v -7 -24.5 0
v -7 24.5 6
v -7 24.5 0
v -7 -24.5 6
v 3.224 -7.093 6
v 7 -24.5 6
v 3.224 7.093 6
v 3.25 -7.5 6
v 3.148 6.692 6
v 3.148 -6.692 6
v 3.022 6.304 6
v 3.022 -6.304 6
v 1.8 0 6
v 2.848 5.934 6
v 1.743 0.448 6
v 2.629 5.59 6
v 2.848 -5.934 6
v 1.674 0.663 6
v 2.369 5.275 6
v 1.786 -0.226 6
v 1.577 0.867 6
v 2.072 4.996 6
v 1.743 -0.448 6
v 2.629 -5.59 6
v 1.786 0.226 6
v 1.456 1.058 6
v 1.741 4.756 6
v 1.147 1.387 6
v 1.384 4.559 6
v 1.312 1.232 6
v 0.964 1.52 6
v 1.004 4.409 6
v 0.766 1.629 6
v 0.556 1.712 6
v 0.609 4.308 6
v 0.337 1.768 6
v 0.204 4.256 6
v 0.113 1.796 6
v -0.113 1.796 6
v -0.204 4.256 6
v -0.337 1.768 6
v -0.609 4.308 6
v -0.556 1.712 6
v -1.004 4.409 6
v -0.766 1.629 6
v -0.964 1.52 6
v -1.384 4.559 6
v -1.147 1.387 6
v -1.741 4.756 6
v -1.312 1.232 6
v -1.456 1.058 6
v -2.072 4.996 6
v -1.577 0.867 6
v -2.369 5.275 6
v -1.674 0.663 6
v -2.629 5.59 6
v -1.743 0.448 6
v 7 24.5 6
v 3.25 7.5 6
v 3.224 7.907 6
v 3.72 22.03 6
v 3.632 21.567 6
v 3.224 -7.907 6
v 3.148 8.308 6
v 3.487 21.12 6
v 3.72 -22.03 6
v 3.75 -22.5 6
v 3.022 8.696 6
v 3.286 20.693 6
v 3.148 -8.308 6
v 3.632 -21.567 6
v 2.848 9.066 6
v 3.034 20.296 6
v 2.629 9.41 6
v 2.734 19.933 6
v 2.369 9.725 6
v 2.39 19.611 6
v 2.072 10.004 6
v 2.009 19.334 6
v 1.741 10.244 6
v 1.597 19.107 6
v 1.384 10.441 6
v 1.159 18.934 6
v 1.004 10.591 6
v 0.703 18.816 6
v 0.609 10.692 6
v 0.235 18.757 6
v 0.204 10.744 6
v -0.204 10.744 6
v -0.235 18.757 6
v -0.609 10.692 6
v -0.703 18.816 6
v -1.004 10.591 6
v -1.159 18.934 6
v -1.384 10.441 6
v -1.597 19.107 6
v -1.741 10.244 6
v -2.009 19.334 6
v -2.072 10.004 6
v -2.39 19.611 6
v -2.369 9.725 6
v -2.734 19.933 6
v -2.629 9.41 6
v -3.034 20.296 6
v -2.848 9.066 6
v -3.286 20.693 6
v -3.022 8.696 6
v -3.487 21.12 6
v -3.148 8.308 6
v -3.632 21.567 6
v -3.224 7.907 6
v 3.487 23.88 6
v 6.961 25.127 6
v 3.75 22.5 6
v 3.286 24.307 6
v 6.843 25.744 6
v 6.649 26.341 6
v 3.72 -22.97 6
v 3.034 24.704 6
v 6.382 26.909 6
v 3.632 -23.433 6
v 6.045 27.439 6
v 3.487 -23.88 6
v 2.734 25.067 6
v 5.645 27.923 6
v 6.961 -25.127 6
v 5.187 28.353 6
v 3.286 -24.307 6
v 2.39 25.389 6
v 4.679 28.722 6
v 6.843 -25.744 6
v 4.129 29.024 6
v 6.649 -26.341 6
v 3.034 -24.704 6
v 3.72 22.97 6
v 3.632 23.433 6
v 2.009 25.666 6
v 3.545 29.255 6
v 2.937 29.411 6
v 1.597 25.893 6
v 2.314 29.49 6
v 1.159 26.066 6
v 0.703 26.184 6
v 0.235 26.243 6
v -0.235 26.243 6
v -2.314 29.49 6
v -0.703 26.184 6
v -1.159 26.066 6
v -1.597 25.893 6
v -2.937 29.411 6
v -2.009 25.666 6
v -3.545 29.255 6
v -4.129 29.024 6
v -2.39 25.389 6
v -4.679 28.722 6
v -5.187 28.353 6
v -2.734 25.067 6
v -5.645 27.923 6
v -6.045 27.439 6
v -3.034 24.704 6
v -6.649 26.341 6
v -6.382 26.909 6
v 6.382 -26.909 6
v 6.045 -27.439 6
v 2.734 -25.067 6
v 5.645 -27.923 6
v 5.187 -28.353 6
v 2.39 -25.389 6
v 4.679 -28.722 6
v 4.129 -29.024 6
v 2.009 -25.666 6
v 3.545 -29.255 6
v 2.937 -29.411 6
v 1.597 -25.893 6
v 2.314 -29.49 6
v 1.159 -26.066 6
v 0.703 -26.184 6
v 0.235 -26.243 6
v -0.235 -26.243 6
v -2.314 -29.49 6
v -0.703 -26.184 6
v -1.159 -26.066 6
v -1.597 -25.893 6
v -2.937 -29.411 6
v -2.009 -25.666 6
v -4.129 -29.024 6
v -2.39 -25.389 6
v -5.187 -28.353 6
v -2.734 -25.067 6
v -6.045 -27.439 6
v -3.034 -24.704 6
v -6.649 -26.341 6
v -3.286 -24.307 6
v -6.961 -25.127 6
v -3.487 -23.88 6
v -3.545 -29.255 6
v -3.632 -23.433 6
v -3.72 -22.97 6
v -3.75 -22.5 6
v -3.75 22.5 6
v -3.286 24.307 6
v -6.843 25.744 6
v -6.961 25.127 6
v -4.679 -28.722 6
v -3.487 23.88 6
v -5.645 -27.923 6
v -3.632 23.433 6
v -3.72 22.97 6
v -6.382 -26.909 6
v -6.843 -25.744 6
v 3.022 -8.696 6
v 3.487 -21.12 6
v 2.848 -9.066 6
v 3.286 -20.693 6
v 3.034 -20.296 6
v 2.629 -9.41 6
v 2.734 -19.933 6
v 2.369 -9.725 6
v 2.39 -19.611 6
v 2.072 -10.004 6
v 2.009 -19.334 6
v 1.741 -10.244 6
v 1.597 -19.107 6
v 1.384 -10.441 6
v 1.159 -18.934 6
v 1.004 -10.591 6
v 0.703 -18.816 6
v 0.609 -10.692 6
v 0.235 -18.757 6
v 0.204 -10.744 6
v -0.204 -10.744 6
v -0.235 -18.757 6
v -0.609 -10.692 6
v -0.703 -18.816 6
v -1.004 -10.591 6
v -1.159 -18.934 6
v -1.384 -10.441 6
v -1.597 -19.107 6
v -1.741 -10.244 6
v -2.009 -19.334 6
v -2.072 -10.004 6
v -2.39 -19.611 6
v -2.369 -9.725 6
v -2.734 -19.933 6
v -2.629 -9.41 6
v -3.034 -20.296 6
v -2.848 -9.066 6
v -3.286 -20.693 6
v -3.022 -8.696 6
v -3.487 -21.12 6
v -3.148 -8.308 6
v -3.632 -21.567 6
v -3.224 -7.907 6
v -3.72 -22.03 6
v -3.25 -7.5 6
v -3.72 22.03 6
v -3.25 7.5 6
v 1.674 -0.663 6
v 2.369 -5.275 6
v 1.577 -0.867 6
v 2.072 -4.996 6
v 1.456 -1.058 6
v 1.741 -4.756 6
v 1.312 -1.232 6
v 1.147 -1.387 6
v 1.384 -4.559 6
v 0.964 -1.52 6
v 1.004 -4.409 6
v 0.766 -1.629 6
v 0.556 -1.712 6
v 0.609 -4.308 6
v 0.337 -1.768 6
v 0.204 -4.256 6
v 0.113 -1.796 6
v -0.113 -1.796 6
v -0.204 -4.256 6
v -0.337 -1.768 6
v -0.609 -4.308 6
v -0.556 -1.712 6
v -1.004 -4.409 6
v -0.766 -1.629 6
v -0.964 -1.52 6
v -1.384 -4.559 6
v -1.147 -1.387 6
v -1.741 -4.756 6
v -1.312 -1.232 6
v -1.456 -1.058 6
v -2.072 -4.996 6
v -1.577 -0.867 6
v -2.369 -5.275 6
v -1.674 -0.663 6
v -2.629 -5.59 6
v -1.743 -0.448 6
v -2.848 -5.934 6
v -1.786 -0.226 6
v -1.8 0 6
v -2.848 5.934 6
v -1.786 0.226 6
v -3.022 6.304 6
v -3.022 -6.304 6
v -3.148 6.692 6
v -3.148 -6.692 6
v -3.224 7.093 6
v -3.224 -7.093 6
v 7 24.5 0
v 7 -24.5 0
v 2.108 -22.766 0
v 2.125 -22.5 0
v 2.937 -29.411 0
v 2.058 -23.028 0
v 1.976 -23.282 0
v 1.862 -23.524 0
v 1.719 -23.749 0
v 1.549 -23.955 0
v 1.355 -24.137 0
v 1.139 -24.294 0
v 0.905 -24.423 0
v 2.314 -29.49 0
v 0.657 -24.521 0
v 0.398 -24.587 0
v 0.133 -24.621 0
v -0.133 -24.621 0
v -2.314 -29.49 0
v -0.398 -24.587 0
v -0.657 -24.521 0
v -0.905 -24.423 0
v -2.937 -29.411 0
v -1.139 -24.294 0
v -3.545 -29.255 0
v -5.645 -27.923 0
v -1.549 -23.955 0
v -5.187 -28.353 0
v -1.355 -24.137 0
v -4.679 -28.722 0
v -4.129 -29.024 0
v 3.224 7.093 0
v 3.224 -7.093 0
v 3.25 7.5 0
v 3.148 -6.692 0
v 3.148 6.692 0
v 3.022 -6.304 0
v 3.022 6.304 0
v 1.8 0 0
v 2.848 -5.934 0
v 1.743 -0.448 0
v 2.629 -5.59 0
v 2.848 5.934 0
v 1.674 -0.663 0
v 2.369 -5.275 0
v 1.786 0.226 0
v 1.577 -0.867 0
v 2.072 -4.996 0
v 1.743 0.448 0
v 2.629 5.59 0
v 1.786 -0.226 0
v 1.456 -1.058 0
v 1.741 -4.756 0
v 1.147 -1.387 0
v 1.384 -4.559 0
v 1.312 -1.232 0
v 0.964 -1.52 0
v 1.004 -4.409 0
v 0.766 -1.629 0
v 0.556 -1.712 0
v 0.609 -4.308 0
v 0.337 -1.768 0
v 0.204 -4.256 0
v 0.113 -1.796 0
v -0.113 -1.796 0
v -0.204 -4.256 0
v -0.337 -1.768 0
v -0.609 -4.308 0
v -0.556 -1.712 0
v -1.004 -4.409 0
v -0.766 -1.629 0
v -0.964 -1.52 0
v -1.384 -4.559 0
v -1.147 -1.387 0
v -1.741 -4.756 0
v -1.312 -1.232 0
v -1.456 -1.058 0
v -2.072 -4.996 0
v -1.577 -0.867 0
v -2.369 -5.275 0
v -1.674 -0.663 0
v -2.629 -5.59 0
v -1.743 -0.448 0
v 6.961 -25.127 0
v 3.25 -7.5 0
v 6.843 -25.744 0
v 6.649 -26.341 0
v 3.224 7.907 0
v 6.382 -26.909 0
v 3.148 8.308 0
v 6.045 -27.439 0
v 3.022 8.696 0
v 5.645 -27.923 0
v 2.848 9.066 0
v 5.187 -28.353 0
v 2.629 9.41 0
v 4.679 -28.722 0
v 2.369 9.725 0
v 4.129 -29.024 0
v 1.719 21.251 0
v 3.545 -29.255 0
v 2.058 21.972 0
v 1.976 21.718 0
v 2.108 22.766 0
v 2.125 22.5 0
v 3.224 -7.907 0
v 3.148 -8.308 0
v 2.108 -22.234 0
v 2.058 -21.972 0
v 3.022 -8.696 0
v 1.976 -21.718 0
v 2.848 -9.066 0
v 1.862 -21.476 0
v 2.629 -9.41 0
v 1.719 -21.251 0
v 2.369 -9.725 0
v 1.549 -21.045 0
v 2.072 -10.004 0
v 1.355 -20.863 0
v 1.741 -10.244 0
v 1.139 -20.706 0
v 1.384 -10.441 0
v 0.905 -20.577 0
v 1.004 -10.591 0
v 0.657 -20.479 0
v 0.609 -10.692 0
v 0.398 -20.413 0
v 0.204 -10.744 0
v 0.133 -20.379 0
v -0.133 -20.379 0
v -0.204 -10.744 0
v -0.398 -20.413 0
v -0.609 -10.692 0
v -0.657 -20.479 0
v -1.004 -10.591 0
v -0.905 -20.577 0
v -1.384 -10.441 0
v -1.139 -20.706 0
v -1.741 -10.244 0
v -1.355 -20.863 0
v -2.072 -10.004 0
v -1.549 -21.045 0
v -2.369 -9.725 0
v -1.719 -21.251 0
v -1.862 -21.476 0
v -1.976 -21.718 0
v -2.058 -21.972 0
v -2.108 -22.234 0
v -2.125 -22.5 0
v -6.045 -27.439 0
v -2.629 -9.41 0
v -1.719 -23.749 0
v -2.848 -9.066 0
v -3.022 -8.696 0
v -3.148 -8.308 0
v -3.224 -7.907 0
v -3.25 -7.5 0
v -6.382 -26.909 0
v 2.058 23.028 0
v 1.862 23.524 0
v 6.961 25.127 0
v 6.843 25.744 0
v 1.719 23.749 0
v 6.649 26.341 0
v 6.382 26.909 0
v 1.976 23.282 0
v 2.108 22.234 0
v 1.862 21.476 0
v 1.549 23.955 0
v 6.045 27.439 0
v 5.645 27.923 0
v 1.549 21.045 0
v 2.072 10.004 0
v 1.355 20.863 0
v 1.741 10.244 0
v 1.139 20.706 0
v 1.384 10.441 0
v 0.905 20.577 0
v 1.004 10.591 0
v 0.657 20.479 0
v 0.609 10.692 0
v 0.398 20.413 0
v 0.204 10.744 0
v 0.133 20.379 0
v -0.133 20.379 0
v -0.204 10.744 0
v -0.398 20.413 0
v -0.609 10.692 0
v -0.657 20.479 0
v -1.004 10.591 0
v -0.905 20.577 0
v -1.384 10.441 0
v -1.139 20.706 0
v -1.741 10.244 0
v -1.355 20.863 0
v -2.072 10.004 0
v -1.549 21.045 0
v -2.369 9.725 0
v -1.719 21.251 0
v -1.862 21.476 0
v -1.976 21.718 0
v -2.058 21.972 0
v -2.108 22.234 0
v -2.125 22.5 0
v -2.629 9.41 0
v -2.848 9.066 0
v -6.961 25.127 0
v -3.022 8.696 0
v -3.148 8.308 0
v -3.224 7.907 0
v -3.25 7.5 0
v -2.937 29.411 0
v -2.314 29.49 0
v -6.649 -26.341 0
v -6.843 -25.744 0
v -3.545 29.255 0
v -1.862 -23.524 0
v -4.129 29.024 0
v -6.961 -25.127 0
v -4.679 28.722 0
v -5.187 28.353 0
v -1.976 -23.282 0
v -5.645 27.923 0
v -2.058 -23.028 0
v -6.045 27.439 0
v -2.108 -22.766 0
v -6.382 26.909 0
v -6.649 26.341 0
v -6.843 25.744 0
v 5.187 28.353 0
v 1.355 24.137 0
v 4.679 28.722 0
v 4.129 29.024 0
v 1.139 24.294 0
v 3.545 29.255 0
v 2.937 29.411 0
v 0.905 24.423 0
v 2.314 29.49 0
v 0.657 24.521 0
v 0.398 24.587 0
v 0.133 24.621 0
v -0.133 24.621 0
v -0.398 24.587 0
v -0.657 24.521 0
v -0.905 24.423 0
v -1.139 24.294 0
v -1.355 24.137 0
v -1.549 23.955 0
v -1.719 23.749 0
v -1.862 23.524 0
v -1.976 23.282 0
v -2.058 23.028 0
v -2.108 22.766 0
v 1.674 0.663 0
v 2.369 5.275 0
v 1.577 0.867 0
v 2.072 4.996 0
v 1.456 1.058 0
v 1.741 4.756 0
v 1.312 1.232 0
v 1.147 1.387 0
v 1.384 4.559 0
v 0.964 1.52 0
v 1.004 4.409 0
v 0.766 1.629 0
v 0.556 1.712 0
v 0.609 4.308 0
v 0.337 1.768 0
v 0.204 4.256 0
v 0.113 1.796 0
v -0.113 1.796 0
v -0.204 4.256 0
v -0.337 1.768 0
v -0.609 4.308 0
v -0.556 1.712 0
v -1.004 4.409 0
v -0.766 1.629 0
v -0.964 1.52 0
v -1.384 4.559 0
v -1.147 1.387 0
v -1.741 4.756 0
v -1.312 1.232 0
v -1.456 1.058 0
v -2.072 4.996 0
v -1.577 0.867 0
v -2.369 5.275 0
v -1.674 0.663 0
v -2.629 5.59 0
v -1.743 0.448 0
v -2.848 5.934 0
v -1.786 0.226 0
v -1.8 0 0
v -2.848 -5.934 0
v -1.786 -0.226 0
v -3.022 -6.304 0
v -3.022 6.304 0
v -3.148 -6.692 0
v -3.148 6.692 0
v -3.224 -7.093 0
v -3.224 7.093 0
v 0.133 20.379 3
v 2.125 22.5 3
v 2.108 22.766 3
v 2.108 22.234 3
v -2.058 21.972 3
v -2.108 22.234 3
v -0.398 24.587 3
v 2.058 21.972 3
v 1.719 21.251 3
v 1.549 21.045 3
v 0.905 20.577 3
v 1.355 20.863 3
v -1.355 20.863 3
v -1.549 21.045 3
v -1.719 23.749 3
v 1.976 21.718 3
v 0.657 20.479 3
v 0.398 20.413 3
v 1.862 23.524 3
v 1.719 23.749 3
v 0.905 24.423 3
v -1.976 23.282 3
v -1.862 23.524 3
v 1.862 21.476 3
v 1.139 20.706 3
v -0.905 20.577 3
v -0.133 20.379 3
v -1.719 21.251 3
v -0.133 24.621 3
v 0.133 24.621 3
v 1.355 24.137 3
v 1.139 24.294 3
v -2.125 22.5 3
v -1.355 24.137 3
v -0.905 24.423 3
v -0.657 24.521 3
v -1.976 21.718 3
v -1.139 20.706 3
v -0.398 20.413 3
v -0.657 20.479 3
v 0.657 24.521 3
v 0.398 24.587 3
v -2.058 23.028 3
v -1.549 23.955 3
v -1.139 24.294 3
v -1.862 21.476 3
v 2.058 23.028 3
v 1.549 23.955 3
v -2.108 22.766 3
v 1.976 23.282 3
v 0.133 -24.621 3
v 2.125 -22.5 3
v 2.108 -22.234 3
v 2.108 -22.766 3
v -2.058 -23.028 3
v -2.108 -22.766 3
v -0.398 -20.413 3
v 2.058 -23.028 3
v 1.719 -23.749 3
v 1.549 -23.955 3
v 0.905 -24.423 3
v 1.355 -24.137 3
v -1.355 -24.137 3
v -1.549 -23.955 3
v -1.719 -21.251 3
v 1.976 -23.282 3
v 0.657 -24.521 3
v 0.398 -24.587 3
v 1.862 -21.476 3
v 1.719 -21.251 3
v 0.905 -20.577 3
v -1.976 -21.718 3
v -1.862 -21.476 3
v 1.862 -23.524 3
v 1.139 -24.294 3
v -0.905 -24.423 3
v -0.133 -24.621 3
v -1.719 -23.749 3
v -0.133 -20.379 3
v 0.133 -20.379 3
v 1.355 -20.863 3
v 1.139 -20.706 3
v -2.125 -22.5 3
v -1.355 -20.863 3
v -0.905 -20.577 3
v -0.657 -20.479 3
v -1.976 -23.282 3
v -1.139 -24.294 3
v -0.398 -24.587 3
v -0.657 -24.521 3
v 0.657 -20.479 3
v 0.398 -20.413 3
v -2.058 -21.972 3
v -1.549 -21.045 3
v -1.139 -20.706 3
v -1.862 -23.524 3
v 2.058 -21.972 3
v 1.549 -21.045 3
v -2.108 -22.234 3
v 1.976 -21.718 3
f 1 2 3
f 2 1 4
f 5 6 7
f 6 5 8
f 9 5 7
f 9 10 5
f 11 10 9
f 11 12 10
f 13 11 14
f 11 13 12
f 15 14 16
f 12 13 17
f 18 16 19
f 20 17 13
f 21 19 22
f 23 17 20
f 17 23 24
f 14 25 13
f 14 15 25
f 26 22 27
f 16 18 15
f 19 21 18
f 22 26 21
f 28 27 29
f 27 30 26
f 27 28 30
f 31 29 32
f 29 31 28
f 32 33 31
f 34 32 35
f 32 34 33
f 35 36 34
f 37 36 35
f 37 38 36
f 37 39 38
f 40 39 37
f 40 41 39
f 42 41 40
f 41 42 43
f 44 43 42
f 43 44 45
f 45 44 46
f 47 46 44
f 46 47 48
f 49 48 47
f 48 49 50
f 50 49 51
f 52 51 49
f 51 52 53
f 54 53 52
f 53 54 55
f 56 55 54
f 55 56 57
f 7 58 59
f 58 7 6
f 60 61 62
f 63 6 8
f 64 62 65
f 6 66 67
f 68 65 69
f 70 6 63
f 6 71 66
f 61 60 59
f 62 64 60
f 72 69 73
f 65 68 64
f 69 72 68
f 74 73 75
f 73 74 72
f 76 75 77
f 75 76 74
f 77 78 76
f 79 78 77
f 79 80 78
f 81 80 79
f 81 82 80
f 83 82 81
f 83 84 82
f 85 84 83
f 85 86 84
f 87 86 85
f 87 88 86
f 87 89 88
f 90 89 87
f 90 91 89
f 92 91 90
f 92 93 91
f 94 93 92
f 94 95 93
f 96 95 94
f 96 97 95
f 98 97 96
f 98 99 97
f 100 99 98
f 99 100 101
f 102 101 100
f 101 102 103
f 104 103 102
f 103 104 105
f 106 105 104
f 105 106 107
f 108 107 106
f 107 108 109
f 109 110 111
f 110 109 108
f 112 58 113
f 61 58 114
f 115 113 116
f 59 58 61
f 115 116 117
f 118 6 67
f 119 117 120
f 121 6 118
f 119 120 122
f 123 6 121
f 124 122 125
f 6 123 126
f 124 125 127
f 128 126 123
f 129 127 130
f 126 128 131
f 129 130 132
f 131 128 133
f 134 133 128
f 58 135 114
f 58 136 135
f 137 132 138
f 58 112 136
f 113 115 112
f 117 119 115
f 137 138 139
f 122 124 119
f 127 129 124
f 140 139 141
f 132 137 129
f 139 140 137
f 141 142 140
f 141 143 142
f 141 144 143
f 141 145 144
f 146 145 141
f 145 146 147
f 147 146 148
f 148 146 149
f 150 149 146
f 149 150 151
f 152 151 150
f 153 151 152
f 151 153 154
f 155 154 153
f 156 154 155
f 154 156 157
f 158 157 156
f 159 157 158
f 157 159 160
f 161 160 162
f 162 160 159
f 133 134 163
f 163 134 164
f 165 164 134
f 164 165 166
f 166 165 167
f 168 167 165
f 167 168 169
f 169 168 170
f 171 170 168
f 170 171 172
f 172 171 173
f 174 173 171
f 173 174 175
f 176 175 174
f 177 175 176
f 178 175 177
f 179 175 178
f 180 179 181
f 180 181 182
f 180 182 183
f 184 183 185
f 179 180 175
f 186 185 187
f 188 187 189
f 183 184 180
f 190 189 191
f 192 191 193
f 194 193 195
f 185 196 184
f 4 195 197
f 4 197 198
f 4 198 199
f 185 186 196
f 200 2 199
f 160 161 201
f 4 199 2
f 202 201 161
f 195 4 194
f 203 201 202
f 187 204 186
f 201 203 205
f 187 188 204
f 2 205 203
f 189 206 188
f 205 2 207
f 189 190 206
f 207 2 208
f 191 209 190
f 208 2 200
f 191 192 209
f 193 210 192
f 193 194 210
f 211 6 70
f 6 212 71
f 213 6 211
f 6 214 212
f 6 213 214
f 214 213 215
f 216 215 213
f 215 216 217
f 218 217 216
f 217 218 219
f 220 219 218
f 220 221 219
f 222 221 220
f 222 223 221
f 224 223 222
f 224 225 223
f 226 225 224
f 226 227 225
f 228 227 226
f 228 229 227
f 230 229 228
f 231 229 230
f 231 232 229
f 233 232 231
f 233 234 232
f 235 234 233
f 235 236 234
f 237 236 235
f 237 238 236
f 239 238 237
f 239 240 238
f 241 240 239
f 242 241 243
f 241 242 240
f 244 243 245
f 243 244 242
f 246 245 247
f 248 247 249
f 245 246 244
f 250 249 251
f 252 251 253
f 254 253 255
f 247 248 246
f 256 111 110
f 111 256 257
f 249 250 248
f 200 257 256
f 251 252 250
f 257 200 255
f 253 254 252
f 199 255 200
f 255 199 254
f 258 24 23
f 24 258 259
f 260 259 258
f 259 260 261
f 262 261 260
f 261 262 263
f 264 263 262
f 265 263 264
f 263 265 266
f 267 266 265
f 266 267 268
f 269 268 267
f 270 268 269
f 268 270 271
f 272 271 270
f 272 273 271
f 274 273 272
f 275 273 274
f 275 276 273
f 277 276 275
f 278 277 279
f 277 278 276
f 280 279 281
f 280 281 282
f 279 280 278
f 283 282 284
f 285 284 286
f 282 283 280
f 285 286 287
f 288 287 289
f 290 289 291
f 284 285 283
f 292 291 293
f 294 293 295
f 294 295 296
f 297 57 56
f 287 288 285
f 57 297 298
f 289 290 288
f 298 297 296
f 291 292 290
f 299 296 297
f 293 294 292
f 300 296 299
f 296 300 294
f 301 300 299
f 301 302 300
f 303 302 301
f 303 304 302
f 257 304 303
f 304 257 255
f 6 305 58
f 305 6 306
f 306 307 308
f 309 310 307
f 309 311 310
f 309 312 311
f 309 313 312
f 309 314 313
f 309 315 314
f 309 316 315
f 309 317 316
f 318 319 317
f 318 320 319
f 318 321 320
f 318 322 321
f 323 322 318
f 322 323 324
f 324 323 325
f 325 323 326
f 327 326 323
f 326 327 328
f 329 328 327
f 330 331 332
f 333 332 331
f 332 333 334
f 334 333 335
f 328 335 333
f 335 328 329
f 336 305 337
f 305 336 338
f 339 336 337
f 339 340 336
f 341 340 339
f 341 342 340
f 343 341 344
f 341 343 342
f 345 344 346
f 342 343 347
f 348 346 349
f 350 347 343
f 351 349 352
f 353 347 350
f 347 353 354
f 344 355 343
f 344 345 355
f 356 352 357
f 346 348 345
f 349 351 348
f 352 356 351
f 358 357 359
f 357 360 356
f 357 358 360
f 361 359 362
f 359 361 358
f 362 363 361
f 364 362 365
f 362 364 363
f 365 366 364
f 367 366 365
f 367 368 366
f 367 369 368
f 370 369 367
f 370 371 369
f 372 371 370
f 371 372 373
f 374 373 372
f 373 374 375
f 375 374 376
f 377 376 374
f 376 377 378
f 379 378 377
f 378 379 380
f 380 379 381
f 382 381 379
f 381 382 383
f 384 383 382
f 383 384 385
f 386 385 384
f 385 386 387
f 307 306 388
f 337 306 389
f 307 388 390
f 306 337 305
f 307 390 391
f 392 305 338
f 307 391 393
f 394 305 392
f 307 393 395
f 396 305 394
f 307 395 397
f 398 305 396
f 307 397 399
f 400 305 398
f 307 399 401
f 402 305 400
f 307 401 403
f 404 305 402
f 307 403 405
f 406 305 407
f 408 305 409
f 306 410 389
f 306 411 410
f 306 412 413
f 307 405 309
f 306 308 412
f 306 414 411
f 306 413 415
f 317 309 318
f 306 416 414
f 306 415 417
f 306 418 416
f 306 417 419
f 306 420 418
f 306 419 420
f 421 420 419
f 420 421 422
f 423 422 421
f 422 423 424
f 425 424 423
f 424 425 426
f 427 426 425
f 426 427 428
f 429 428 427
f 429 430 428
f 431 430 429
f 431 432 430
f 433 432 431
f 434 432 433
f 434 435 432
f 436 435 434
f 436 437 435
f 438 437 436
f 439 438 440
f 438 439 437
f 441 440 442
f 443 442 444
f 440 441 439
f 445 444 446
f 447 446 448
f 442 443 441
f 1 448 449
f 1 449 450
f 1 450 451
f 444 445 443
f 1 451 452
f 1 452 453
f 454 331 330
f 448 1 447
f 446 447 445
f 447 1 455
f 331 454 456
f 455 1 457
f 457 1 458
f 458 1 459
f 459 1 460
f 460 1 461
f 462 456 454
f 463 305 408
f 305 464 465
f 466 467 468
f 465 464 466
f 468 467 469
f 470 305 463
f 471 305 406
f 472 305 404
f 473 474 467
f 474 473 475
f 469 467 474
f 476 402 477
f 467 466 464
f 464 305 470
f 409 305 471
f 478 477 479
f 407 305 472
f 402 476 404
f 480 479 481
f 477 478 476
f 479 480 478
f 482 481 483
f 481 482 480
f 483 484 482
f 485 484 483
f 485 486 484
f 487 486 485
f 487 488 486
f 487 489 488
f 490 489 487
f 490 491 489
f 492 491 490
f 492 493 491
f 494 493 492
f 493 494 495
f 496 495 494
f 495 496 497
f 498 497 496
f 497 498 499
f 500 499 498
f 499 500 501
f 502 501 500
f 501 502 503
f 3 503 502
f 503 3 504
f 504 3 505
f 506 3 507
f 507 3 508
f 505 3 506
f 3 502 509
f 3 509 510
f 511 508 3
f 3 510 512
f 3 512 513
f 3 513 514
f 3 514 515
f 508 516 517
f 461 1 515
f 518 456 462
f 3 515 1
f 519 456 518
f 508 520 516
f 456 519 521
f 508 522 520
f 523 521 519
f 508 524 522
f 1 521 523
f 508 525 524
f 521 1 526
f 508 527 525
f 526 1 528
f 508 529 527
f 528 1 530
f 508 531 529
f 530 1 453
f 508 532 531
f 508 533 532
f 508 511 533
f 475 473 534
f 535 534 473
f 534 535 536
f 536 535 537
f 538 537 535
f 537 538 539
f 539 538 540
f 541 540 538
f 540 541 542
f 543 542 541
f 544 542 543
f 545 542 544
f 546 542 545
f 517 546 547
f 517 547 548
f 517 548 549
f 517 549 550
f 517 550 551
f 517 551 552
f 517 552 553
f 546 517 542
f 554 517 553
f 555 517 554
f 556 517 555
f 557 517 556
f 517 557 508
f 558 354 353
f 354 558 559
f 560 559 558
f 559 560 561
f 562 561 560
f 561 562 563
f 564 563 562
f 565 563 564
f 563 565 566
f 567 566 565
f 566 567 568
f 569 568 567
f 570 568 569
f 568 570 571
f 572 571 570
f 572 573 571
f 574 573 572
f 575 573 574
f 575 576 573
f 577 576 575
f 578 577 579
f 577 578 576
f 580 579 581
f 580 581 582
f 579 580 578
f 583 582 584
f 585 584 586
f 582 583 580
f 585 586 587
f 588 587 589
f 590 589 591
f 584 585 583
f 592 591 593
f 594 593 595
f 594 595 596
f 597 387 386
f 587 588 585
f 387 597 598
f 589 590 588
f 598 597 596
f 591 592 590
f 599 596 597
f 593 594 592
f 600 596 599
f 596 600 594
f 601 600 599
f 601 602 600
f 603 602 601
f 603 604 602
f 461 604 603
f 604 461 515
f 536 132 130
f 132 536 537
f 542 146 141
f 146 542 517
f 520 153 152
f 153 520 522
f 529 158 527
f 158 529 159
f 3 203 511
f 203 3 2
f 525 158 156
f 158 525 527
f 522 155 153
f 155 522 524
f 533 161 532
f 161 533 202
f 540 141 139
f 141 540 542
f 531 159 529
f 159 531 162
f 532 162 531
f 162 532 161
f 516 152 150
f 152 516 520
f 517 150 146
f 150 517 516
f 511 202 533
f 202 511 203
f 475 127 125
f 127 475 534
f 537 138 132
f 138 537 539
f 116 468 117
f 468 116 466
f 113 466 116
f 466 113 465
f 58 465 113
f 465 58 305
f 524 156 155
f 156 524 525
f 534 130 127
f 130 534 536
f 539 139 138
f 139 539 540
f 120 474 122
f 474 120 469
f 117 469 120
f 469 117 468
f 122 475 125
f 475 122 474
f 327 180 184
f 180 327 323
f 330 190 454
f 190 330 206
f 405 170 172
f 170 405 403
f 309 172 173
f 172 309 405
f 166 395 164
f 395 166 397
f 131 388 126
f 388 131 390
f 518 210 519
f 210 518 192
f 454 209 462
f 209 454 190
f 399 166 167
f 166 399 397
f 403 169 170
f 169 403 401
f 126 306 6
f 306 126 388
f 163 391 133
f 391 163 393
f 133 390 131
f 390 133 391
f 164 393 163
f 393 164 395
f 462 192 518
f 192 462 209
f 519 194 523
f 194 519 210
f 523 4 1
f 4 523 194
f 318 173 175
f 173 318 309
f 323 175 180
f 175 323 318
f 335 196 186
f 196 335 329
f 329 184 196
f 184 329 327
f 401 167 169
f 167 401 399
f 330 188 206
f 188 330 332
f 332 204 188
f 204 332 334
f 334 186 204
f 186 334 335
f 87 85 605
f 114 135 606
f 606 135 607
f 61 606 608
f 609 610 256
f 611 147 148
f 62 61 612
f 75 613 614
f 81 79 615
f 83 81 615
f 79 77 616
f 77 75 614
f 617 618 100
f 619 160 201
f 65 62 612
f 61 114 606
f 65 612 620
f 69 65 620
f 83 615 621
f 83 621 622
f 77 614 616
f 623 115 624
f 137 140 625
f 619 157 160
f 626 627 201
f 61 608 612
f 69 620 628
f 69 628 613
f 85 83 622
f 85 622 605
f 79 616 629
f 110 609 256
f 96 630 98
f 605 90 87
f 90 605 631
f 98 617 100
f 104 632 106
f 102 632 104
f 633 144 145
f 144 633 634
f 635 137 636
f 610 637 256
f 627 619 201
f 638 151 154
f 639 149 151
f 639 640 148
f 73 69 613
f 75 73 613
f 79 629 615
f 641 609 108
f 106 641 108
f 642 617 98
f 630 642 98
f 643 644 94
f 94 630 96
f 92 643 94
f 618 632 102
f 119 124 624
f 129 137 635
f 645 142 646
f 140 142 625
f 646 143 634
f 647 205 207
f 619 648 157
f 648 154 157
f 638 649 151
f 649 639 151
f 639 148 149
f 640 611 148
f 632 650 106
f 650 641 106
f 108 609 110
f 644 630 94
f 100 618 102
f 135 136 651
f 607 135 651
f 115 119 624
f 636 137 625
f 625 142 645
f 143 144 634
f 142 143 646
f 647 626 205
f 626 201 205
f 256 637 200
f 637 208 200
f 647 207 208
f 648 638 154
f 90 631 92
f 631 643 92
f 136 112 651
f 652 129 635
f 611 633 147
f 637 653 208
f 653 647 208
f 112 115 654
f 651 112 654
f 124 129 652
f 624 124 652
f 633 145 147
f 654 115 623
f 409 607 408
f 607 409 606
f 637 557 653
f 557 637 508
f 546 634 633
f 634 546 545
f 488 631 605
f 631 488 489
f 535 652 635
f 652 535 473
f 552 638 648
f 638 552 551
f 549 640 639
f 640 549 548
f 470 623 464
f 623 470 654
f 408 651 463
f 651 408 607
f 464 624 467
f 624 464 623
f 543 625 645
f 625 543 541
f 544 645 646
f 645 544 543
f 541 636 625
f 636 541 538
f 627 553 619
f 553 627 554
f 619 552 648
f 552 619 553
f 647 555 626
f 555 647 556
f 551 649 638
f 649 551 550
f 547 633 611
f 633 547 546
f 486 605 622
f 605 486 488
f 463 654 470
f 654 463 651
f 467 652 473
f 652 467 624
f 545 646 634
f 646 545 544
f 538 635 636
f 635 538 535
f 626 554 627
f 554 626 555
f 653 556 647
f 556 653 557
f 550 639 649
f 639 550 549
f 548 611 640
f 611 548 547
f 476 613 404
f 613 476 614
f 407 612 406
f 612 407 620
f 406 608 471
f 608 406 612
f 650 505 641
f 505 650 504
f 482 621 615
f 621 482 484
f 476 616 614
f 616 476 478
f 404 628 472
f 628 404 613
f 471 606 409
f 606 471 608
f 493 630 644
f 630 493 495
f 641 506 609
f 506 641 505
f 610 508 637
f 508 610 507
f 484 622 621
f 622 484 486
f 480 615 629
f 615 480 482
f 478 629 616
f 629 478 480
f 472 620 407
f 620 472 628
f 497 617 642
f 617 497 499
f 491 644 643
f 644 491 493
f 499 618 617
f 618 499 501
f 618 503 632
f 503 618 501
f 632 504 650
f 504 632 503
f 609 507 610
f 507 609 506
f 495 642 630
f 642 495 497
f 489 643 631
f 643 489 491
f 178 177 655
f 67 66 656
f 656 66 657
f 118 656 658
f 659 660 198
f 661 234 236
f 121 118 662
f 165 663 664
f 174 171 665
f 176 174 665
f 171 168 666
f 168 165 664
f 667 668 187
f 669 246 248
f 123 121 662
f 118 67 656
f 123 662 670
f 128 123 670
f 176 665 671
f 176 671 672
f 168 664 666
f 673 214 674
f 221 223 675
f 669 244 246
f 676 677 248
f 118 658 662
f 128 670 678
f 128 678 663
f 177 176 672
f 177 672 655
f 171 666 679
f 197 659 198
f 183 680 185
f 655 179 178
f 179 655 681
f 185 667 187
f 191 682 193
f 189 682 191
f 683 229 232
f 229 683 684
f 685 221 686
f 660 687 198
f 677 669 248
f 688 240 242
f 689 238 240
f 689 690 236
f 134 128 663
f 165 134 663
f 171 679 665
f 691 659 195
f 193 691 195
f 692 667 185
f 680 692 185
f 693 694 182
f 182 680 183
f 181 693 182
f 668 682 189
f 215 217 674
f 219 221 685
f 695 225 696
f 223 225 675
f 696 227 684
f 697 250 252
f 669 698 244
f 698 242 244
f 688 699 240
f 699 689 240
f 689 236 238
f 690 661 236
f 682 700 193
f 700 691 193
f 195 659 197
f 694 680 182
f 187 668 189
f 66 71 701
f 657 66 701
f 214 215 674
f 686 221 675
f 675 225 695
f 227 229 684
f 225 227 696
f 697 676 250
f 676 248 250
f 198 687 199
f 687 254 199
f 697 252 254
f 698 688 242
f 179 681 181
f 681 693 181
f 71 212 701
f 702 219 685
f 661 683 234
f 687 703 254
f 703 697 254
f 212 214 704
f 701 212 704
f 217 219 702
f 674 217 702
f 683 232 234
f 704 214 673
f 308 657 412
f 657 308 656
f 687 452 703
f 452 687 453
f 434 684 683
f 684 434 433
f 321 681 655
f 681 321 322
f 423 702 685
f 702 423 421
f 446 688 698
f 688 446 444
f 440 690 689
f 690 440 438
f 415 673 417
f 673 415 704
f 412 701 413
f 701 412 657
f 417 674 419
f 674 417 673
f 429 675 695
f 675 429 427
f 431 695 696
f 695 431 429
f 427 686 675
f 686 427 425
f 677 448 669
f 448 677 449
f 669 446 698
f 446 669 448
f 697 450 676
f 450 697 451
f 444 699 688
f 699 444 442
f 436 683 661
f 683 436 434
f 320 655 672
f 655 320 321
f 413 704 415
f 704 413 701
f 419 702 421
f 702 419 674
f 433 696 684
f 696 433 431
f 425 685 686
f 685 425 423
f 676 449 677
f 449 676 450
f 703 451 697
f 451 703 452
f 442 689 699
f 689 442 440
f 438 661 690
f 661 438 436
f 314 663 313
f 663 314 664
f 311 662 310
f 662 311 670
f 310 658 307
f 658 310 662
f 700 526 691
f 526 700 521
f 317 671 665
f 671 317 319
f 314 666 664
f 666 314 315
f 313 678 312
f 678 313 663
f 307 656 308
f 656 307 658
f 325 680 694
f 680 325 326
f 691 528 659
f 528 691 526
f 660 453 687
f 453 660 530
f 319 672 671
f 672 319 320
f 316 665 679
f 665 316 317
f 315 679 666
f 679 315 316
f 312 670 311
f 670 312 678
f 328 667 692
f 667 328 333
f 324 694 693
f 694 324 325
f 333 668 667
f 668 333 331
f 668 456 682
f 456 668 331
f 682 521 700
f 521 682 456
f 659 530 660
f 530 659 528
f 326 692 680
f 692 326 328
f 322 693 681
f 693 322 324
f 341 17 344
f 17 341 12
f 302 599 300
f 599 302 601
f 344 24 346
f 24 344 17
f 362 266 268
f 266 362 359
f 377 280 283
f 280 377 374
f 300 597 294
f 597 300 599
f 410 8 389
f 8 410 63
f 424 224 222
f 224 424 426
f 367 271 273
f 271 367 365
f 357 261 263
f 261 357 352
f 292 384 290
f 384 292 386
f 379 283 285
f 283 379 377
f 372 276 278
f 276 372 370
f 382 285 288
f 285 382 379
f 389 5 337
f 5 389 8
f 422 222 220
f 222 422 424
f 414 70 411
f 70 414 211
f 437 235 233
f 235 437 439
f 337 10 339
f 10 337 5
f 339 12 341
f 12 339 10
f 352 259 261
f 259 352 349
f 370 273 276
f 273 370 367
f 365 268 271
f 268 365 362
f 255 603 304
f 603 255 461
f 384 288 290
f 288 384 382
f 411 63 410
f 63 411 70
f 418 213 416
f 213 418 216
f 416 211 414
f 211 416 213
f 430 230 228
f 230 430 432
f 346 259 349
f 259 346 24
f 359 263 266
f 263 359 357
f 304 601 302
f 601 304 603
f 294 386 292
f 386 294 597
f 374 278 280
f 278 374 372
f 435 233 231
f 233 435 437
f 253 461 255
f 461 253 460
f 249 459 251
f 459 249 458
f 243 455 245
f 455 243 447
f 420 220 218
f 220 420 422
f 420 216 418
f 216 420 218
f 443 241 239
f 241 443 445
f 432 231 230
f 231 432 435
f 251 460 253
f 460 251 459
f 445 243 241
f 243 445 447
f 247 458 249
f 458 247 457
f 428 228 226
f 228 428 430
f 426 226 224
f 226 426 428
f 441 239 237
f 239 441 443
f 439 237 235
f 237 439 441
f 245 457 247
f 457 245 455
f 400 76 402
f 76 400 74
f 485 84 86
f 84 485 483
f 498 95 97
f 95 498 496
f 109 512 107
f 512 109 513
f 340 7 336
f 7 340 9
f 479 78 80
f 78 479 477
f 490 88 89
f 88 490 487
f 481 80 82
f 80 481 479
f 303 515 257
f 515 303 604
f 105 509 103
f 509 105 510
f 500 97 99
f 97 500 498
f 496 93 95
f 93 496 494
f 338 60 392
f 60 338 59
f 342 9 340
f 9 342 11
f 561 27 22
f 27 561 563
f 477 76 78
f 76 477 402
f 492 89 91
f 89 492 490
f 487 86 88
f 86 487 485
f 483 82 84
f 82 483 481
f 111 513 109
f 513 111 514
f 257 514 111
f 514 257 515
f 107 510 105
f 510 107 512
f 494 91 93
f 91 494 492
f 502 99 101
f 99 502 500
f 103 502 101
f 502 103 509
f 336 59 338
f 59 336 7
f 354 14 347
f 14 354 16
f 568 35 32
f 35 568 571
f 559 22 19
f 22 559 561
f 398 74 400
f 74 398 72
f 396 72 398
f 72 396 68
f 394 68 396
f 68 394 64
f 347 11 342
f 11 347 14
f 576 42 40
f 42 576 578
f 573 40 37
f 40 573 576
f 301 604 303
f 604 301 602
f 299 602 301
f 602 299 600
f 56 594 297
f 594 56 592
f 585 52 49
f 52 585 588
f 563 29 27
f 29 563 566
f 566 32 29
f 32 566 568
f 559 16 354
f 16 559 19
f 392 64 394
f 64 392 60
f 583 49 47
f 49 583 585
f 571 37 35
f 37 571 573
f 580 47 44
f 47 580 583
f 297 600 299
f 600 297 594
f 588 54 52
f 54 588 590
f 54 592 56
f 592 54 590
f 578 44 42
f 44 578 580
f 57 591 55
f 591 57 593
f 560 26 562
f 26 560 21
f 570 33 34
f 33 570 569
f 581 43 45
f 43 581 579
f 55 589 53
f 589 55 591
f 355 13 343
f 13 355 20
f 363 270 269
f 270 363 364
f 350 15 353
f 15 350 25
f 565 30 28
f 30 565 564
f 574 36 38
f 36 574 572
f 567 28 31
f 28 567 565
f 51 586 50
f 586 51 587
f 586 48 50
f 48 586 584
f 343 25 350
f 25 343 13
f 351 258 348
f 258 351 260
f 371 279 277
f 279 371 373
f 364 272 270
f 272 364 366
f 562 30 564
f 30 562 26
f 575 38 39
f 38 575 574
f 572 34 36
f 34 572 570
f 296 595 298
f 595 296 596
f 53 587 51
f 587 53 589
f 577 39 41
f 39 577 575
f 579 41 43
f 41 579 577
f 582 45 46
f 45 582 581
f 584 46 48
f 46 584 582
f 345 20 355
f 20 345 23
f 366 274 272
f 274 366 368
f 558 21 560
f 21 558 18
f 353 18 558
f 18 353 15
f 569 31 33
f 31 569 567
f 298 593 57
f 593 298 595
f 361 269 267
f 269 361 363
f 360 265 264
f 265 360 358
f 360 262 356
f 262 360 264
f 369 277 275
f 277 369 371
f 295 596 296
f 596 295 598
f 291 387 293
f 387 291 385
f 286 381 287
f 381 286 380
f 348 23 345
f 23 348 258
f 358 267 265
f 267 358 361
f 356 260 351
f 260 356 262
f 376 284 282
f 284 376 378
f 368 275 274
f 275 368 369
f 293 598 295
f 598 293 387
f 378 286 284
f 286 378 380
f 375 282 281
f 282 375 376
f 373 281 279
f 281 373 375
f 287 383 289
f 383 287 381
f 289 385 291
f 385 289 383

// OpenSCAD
$fn = 50;


difference() {
	union() {
		hull() {
			translate(v = [-2.0000000000, 9.5000000000, 0]) {
				cylinder(h = 6, r = 5);
			}
			translate(v = [2.0000000000, 9.5000000000, 0]) {
				cylinder(h = 6, r = 5);
			}
			translate(v = [-2.0000000000, -9.5000000000, 0]) {
				cylinder(h = 6, r = 5);
			}
			translate(v = [2.0000000000, -9.5000000000, 0]) {
				cylinder(h = 6, r = 5);
			}
		}
		translate(v = [0.0000000000, 15.0000000000, 0]) {
			hull() {
				translate(v = [-2.0000000000, 9.5000000000, 0]) {
					cylinder(h = 6, r = 5);
				}
				translate(v = [2.0000000000, 9.5000000000, 0]) {
					cylinder(h = 6, r = 5);
				}
				translate(v = [-2.0000000000, -9.5000000000, 0]) {
					cylinder(h = 6, r = 5);
				}
				translate(v = [2.0000000000, -9.5000000000, 0]) {
					cylinder(h = 6, r = 5);
				}
			}
		}
		translate(v = [0.0000000000, 15.0000000000, 0]) {
			hull() {
				translate(v = [-2.0000000000, 9.5000000000, 0]) {
					cylinder(h = 6, r = 5);
				}
				translate(v = [2.0000000000, 9.5000000000, 0]) {
					cylinder(h = 6, r = 5);
				}
				translate(v = [-2.0000000000, -9.5000000000, 0]) {
					cylinder(h = 6, r = 5);
				}
				translate(v = [2.0000000000, -9.5000000000, 0]) {
					cylinder(h = 6, r = 5);
				}
			}
		}
		translate(v = [0.0000000000, -15.0000000000, 0]) {
			hull() {
				translate(v = [-2.0000000000, 9.5000000000, 0]) {
					cylinder(h = 6, r = 5);
				}
				translate(v = [2.0000000000, 9.5000000000, 0]) {
					cylinder(h = 6, r = 5);
				}
				translate(v = [-2.0000000000, -9.5000000000, 0]) {
					cylinder(h = 6, r = 5);
				}
				translate(v = [2.0000000000, -9.5000000000, 0]) {
					cylinder(h = 6, r = 5);
				}
			}
		}
		translate(v = [0.0000000000, -15.0000000000, 0]) {
			hull() {
				translate(v = [-2.0000000000, 9.5000000000, 0]) {
					cylinder(h = 6, r = 5);
				}
				translate(v = [2.0000000000, 9.5000000000, 0]) {
					cylinder(h = 6, r = 5);
				}
				translate(v = [-2.0000000000, -9.5000000000, 0]) {
					cylinder(h = 6, r = 5);
				}
				translate(v = [2.0000000000, -9.5000000000, 0]) {
					cylinder(h = 6, r = 5);
				}
			}
		}
	}
	union() {
		translate(v = [0.0000000000, 22.5000000000, 6]) {
			rotate(a = [0, 0, 0]) {
				difference() {
					union() {
						#translate(v = [0, 0, -6.0000000000]) {
							cylinder(h = 6, r = 2.0000000000);
						}
						#translate(v = [0, 0, -3]) {
							cylinder(h = 3, r1 = 2.1250000000, r2 = 3.7500000000);
						}
						#translate(v = [0, 0, -6.0000000000]) {
							cylinder(h = 6, r = 2.1250000000);
						}
						#translate(v = [0, 0, -6.0000000000]) {
							cylinder(h = 6, r = 2.0000000000);
						}
					}
					union();
				}
			}
		}
		translate(v = [0.0000000000, 22.5000000000, 6]) {
			rotate(a = [0, 0, 0]) {
				difference() {
					union() {
						#translate(v = [0, 0, -6.0000000000]) {
							cylinder(h = 6, r = 2.0000000000);
						}
						#translate(v = [0, 0, -3]) {
							cylinder(h = 3, r1 = 2.1250000000, r2 = 3.7500000000);
						}
						#translate(v = [0, 0, -6.0000000000]) {
							cylinder(h = 6, r = 2.1250000000);
						}
						#translate(v = [0, 0, -6.0000000000]) {
							cylinder(h = 6, r = 2.0000000000);
						}
					}
					union();
				}
			}
		}
		translate(v = [0.0000000000, -22.5000000000, 6]) {
			rotate(a = [0, 0, 0]) {
				difference() {
					union() {
						#translate(v = [0, 0, -6.0000000000]) {
							cylinder(h = 6, r = 2.0000000000);
						}
						#translate(v = [0, 0, -3]) {
							cylinder(h = 3, r1 = 2.1250000000, r2 = 3.7500000000);
						}
						#translate(v = [0, 0, -6.0000000000]) {
							cylinder(h = 6, r = 2.1250000000);
						}
						#translate(v = [0, 0, -6.0000000000]) {
							cylinder(h = 6, r = 2.0000000000);
						}
					}
					union();
				}
			}
		}
		translate(v = [0.0000000000, -22.5000000000, 6]) {
			rotate(a = [0, 0, 0]) {
				difference() {
					union() {
						#translate(v = [0, 0, -6.0000000000]) {
							cylinder(h = 6, r = 2.0000000000);
						}
						#translate(v = [0, 0, -3]) {
							cylinder(h = 3, r1 = 2.1250000000, r2 = 3.7500000000);
						}
						#translate(v = [0, 0, -6.0000000000]) {
							cylinder(h = 6, r = 2.1250000000);
						}
						#translate(v = [0, 0, -6.0000000000]) {
							cylinder(h = 6, r = 2.0000000000);
						}
					}
					union();
				}
			}
		}
		translate(v = [0.0000000000, -7.5000000000, 0]) {
			translate(v = [0, 0, -100]) {
				cylinder(h = 200, r = 3.2500000000);
			}
		}
		translate(v = [0.0000000000, 7.5000000000, 0]) {
			translate(v = [0, 0, -100]) {
				cylinder(h = 200, r = 3.2500000000);
			}
		}
		translate(v = [0.0000000000, -7.5000000000, 0]) {
			translate(v = [0, 0, -100]) {
				cylinder(h = 200, r = 1.8000000000);
			}
		}
		translate(v = [0, 0, -100]) {
			cylinder(h = 200, r = 1.8000000000);
		}
		translate(v = [0.0000000000, 7.5000000000, 0]) {
			translate(v = [0, 0, -100]) {
				cylinder(h = 200, r = 1.8000000000);
			}
		}
	}
}
